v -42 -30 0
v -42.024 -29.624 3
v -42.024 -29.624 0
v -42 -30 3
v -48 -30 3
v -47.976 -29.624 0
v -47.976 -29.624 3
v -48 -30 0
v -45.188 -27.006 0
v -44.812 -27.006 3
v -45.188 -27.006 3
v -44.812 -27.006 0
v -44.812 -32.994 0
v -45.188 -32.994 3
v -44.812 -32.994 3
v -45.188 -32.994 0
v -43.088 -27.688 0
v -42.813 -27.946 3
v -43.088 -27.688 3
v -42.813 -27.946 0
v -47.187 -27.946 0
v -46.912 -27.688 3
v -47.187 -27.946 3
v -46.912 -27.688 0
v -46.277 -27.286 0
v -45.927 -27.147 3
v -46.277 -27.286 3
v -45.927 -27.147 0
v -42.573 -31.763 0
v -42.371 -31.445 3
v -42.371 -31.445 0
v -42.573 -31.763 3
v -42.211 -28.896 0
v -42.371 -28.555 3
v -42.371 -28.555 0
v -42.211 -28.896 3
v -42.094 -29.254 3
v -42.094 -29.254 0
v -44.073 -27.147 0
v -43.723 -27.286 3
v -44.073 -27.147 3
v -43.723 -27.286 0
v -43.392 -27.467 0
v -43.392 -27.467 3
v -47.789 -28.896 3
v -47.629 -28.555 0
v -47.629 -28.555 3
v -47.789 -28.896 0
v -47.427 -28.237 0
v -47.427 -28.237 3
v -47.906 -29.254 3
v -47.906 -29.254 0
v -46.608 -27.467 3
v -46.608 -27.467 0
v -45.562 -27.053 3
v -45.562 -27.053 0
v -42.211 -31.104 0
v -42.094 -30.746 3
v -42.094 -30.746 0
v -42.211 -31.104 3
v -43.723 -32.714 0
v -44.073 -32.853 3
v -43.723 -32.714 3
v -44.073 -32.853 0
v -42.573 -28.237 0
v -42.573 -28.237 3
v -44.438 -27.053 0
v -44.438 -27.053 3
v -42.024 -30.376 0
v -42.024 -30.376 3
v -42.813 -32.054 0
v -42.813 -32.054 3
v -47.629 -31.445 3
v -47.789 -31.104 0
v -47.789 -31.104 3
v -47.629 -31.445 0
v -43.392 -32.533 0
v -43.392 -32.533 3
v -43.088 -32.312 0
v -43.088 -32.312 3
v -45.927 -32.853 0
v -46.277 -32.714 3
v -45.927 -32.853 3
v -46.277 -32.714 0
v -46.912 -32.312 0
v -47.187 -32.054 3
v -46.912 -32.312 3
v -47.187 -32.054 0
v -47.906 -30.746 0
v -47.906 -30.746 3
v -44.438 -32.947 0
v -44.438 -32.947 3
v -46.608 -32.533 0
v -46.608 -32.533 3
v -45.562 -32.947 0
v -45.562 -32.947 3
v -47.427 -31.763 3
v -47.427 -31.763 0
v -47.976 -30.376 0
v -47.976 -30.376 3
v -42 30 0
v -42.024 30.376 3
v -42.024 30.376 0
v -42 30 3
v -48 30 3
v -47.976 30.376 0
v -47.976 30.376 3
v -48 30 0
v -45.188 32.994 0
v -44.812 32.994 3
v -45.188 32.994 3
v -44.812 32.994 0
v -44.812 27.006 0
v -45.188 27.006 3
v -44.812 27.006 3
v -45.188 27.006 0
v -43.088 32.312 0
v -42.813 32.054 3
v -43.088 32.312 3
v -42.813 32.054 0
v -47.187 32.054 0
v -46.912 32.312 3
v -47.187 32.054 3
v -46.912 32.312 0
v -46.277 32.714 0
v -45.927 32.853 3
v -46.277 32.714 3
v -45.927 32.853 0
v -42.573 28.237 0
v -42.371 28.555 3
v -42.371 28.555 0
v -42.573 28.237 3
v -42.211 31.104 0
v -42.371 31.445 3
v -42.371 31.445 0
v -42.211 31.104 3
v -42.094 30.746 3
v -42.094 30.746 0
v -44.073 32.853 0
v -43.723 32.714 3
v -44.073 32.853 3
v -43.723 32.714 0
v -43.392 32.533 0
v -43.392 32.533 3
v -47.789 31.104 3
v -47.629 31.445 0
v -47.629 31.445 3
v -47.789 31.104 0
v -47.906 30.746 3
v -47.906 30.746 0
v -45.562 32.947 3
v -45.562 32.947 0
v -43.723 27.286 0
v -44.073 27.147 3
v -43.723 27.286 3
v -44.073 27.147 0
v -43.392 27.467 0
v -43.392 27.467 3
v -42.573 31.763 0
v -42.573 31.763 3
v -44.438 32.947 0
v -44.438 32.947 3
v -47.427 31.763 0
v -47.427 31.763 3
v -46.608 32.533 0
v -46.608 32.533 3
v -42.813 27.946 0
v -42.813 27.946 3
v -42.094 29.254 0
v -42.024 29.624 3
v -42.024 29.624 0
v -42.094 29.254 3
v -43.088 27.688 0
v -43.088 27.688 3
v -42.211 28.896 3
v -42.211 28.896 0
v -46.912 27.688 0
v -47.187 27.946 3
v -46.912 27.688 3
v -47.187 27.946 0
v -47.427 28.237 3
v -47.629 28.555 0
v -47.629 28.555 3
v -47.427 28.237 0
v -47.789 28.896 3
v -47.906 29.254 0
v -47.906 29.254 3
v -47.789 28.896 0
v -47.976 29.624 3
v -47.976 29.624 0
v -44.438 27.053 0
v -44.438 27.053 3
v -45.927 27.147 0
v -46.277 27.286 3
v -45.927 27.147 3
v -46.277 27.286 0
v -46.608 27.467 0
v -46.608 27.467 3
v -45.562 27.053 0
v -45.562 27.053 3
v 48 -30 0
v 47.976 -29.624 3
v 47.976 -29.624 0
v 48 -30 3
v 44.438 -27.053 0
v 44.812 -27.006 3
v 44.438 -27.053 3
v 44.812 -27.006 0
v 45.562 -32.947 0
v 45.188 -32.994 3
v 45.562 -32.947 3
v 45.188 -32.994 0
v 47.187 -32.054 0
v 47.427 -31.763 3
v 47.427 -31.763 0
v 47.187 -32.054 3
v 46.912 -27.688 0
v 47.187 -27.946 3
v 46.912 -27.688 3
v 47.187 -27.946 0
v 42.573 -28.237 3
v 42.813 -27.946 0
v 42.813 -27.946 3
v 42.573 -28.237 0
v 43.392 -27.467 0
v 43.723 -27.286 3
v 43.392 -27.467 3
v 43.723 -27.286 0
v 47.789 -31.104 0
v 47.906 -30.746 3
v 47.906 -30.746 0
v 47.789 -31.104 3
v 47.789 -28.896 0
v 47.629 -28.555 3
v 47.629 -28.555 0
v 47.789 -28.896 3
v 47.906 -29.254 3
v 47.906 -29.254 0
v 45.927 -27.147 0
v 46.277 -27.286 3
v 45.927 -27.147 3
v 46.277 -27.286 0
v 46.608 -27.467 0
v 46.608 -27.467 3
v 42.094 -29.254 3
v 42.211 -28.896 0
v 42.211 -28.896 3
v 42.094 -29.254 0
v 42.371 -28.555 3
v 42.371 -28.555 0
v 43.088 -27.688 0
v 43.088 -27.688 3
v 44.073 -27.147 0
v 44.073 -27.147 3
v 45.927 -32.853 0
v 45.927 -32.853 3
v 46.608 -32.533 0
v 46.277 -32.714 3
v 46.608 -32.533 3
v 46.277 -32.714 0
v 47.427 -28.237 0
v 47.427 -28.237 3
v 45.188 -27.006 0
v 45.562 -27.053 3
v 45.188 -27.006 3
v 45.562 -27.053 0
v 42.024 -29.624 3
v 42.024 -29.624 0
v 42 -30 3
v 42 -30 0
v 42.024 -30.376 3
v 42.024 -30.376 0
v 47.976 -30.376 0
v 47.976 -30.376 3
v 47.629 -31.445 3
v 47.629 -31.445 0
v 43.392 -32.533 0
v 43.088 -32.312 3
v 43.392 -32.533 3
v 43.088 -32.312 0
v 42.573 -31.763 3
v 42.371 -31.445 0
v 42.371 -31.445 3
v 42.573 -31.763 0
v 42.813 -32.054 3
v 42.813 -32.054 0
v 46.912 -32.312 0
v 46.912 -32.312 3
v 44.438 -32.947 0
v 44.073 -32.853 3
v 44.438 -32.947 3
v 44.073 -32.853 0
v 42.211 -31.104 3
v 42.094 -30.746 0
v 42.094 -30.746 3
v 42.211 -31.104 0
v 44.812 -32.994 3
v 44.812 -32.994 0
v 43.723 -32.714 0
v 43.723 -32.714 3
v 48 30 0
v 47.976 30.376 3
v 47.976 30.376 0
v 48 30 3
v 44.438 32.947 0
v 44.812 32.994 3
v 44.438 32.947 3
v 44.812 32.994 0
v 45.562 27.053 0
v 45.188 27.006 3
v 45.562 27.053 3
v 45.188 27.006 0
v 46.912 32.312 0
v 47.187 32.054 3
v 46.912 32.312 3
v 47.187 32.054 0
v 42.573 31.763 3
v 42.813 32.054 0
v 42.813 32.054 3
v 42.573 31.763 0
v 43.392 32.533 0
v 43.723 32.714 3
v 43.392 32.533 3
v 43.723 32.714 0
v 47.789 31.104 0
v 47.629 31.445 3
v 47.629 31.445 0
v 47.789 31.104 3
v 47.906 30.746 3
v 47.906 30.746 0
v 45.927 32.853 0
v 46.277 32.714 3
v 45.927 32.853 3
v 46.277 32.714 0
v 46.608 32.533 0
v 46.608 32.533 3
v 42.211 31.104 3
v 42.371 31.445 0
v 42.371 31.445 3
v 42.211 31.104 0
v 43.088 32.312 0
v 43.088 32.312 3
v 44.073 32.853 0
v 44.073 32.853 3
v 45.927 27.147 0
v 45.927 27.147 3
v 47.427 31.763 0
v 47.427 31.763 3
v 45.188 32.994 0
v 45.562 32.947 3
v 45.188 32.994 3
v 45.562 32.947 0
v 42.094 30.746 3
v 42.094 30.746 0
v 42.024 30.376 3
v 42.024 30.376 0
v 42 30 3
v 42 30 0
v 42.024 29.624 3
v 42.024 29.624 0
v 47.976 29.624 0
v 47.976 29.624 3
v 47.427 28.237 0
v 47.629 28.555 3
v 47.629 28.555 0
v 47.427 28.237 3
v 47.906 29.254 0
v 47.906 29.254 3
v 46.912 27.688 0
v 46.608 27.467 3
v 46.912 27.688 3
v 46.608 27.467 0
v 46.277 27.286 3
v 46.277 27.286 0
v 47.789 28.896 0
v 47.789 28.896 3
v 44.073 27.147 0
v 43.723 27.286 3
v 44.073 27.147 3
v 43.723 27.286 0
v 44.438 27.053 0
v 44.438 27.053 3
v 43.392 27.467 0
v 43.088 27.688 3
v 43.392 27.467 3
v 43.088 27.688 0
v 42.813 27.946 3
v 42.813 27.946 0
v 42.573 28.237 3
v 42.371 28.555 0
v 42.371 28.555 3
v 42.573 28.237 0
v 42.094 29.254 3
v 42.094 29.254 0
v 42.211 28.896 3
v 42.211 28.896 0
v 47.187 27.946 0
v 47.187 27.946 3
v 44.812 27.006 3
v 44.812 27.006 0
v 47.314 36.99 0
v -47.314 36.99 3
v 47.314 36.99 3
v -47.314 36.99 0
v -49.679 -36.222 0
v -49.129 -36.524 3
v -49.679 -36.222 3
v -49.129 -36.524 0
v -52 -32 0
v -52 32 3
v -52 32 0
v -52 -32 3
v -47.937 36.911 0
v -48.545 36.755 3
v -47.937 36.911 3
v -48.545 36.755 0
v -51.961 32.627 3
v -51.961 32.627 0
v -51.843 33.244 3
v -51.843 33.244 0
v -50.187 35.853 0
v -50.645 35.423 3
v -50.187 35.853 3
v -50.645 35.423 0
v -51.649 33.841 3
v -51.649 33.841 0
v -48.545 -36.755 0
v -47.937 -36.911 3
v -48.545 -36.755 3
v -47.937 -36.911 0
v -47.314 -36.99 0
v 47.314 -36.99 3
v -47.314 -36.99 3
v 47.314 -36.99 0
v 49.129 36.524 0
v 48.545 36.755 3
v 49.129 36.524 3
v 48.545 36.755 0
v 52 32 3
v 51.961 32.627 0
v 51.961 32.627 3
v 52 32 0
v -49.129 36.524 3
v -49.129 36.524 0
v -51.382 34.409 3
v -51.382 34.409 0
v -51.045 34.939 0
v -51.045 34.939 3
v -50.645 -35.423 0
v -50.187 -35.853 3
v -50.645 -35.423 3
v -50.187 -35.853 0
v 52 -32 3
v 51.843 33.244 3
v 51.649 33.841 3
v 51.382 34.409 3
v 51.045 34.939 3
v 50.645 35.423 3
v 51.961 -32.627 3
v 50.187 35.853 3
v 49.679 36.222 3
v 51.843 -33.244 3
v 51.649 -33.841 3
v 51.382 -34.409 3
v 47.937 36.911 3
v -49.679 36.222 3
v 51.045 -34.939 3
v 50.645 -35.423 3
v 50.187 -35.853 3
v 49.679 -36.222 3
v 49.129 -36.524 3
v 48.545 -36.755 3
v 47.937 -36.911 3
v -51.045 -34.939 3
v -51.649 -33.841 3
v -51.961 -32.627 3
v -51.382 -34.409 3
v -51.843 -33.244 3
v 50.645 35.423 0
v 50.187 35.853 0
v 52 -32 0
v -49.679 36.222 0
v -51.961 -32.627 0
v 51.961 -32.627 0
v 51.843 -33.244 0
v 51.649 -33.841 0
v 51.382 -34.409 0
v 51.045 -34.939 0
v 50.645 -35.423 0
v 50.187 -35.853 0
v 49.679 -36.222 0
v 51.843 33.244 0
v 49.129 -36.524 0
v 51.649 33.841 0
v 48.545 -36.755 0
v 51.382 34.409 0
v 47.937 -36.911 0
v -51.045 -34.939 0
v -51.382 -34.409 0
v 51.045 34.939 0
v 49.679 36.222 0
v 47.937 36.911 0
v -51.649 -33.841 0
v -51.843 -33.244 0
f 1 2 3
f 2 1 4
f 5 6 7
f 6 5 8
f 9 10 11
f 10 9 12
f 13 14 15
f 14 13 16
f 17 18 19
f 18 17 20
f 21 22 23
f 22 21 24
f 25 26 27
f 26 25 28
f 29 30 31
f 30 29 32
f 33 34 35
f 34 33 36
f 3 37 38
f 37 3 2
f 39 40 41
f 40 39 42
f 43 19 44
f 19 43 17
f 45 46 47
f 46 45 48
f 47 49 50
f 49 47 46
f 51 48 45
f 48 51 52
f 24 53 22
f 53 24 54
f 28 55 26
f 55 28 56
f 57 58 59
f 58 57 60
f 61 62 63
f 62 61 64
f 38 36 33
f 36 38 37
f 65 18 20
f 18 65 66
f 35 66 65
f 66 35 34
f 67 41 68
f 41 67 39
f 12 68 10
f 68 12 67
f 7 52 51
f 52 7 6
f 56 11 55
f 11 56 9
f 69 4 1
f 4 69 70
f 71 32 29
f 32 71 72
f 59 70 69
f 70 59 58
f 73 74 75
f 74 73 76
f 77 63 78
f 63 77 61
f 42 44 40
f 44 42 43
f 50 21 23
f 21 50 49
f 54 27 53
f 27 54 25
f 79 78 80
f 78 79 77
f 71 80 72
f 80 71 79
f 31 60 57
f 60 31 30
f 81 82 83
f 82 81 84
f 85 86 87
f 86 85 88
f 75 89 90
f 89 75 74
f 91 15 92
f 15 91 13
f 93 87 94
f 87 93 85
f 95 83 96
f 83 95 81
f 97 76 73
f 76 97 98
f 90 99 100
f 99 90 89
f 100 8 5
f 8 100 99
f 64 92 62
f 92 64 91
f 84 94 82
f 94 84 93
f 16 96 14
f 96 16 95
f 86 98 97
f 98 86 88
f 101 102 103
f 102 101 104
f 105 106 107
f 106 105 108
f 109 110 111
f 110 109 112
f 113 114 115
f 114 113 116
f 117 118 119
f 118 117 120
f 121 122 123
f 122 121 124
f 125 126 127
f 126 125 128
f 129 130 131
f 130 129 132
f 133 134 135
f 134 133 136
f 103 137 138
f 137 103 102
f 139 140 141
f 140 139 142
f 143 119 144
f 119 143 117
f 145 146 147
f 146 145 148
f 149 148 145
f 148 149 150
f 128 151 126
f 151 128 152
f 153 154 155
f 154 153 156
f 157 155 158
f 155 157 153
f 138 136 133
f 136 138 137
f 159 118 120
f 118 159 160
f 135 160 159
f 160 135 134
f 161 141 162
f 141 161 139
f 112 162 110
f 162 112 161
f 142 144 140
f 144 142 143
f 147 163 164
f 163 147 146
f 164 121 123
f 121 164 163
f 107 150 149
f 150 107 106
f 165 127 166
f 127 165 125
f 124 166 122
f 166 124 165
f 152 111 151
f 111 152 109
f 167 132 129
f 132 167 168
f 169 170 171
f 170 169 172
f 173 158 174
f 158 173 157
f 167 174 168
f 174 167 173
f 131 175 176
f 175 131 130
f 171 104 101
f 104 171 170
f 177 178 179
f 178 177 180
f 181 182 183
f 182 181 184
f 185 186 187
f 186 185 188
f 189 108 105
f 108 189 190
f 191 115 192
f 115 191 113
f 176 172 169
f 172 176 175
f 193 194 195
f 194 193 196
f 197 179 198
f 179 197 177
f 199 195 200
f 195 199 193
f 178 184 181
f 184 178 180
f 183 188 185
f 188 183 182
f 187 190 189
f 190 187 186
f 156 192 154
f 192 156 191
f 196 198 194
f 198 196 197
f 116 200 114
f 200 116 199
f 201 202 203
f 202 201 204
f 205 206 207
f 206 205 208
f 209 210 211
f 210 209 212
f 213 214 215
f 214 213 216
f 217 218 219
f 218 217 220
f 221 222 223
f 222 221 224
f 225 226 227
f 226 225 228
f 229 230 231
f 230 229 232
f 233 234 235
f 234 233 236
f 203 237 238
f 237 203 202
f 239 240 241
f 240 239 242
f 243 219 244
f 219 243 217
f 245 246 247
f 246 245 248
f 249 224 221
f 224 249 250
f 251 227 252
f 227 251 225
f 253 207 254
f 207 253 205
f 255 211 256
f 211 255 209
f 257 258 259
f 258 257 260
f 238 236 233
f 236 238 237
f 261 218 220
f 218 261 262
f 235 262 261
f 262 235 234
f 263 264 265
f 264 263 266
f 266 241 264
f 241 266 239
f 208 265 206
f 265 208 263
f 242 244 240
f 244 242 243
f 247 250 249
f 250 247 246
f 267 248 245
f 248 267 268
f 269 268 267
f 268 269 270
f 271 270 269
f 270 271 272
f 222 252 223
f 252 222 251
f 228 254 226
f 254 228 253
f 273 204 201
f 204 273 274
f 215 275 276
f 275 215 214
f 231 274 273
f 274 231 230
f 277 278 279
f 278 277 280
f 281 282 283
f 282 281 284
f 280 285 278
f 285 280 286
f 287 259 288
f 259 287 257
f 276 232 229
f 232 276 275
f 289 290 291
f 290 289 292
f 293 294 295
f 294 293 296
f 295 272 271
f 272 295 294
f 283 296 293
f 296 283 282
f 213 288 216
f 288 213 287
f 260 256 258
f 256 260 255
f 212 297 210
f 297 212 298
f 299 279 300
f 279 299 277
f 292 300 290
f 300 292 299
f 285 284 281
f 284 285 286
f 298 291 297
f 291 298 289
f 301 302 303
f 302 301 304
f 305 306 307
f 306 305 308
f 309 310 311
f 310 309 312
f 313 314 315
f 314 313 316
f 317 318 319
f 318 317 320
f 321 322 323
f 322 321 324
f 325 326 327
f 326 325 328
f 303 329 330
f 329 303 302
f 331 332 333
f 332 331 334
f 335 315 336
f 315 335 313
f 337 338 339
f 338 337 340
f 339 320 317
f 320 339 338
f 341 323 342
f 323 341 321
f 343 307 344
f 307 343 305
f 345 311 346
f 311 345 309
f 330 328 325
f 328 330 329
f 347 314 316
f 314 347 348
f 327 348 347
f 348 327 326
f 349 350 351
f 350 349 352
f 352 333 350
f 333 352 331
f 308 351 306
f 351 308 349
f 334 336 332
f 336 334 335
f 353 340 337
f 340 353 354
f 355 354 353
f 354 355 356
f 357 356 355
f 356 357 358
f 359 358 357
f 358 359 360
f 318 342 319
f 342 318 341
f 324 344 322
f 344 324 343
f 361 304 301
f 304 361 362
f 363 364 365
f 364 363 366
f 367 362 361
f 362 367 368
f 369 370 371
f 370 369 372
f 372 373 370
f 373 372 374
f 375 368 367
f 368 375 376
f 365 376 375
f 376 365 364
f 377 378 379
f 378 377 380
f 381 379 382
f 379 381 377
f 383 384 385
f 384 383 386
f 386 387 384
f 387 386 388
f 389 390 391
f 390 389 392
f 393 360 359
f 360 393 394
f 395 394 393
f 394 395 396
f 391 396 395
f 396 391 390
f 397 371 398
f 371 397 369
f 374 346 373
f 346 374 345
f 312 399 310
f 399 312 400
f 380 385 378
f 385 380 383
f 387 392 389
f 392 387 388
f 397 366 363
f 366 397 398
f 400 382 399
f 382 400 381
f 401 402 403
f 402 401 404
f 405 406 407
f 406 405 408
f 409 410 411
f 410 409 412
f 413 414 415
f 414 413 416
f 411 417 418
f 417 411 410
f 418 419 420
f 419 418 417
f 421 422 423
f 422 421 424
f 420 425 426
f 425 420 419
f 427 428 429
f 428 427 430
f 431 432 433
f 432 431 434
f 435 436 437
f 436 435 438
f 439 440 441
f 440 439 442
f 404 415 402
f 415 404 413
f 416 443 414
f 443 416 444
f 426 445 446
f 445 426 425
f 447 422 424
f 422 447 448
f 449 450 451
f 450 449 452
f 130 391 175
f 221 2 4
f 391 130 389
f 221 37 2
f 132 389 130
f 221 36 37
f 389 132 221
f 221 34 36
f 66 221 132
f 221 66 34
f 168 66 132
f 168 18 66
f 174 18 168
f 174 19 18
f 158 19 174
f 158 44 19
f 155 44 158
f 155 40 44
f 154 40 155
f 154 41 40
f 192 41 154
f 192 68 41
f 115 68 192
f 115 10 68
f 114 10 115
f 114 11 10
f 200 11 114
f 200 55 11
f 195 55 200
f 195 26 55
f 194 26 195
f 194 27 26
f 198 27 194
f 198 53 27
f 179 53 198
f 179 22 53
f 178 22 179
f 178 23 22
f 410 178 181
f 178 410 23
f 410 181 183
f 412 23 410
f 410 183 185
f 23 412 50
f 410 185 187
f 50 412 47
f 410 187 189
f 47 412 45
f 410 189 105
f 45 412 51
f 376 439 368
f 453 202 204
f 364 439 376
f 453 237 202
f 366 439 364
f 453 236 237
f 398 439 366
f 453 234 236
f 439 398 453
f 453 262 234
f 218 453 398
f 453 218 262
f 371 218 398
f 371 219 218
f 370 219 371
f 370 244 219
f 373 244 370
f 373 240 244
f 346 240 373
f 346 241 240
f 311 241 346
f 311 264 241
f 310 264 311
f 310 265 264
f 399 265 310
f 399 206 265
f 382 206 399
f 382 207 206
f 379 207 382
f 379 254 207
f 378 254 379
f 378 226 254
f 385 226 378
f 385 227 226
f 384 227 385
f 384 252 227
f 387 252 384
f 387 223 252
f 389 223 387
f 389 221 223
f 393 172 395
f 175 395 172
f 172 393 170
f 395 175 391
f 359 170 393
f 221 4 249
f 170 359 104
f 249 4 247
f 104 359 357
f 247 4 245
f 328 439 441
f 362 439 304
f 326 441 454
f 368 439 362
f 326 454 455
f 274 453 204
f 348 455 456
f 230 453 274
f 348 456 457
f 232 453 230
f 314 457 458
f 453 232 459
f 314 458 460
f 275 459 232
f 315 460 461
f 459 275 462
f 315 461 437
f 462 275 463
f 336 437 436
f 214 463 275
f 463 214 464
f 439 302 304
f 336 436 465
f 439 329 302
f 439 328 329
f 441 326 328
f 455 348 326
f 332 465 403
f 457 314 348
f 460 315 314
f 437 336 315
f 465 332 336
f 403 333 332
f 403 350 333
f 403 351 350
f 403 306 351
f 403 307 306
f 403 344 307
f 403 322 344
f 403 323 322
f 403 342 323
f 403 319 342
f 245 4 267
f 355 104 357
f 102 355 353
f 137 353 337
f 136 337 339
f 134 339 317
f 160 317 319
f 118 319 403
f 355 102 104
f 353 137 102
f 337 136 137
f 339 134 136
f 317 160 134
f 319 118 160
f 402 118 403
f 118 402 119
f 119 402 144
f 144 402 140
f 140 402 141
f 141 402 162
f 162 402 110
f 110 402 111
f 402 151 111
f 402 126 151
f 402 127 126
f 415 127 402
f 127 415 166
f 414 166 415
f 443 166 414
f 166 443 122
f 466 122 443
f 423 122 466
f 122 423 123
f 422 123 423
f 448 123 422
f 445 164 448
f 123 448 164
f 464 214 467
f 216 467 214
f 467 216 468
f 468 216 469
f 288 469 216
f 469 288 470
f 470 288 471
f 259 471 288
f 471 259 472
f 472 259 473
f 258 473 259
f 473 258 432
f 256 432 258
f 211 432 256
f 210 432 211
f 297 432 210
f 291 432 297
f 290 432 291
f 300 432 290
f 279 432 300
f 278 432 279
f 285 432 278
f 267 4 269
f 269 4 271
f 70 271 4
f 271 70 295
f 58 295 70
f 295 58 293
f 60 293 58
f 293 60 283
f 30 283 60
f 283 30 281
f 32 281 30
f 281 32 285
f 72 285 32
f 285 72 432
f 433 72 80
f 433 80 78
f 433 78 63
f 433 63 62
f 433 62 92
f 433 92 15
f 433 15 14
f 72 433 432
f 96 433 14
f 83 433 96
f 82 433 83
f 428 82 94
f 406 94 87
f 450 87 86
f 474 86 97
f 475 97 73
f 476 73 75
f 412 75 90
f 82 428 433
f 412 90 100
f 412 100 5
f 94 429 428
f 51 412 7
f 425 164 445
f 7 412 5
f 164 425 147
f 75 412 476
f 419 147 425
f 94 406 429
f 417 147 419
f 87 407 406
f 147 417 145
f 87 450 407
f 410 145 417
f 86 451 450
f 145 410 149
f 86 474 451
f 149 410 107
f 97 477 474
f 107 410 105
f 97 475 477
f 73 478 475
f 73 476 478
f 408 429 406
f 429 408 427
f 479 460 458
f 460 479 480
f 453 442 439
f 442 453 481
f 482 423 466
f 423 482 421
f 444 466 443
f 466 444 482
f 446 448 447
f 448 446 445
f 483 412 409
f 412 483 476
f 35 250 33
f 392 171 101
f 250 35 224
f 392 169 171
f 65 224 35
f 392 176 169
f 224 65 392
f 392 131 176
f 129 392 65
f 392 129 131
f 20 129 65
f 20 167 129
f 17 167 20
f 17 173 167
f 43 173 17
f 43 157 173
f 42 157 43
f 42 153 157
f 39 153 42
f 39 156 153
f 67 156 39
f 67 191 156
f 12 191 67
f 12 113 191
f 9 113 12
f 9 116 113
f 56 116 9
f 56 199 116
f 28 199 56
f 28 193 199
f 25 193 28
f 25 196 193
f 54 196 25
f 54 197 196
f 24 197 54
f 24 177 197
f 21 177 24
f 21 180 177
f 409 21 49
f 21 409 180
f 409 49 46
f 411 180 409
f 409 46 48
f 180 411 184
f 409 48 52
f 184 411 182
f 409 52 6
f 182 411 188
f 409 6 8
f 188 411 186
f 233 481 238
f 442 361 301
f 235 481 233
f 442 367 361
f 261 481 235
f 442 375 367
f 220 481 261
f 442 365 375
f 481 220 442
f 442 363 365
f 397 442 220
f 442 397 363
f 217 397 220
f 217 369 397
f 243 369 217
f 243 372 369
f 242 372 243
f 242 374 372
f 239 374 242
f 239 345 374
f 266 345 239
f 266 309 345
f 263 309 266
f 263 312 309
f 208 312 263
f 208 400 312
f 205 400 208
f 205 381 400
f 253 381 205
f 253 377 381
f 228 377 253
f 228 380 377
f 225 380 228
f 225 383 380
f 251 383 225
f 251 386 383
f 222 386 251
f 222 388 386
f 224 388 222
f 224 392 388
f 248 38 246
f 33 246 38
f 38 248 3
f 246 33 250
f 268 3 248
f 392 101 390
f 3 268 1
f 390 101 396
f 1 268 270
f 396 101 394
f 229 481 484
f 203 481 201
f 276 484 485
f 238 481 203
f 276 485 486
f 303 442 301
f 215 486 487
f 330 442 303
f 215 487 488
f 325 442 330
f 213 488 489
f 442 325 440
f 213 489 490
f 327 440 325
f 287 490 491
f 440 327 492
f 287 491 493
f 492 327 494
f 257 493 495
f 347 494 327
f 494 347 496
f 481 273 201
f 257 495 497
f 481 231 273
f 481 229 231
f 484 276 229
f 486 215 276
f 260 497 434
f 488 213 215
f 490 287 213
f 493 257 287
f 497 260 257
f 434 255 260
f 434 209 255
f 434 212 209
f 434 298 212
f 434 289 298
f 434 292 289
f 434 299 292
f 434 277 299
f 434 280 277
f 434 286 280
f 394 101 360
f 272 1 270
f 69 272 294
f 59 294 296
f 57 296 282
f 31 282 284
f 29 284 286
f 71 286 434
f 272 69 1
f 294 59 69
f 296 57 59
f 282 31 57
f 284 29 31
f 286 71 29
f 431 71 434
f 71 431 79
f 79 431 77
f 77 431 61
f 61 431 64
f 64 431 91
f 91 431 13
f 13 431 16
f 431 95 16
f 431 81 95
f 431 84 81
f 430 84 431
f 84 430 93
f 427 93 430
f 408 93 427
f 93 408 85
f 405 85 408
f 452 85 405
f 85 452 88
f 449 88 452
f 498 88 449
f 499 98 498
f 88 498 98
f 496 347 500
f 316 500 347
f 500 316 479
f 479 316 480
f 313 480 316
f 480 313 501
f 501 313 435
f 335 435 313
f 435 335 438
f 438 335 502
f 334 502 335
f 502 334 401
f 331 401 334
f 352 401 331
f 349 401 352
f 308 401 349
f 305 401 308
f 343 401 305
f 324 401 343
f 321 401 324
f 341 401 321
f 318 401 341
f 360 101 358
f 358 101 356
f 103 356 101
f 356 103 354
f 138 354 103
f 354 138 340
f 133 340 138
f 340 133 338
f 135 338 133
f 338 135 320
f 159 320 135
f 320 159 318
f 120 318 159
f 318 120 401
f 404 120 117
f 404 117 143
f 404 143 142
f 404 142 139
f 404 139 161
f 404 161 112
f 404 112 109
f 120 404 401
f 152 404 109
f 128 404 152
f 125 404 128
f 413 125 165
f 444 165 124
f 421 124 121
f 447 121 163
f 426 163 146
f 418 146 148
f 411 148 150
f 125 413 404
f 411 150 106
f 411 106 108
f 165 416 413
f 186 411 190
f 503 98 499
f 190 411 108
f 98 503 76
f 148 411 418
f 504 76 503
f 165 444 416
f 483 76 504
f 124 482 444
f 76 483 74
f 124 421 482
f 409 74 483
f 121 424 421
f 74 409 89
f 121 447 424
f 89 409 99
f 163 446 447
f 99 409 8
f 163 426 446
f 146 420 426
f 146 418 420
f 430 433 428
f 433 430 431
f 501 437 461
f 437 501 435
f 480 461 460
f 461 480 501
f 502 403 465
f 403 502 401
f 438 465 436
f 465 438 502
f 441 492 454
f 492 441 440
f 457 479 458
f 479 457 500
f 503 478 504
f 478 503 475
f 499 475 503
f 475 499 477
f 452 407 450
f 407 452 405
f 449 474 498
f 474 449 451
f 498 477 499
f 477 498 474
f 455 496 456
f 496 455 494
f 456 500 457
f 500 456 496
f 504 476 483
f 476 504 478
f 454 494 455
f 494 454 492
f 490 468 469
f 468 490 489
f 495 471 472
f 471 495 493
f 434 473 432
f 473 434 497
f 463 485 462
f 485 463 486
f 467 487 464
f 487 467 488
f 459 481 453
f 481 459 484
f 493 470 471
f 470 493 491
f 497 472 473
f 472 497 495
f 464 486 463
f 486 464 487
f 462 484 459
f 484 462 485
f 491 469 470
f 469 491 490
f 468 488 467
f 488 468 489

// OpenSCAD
$fn = 50;


difference() {
	union() {
		hull() {
			translate(v = [-47.0000000000, 32.0000000000, 0]) {
				cylinder(h = 3, r = 5);
			}
			translate(v = [47.0000000000, 32.0000000000, 0]) {
				cylinder(h = 3, r = 5);
			}
			translate(v = [-47.0000000000, -32.0000000000, 0]) {
				cylinder(h = 3, r = 5);
			}
			translate(v = [47.0000000000, -32.0000000000, 0]) {
				cylinder(h = 3, r = 5);
			}
		}
	}
	union() {
		translate(v = [-45.0000000000, -30.0000000000, -100.0000000000]) {
			cylinder(h = 200, r = 3.0000000000);
		}
		translate(v = [-45.0000000000, 30.0000000000, -100.0000000000]) {
			cylinder(h = 200, r = 3.0000000000);
		}
		translate(v = [45.0000000000, -30.0000000000, -100.0000000000]) {
			cylinder(h = 200, r = 3.0000000000);
		}
		translate(v = [45.0000000000, 30.0000000000, -100.0000000000]) {
			cylinder(h = 200, r = 3.0000000000);
		}
	}
}
